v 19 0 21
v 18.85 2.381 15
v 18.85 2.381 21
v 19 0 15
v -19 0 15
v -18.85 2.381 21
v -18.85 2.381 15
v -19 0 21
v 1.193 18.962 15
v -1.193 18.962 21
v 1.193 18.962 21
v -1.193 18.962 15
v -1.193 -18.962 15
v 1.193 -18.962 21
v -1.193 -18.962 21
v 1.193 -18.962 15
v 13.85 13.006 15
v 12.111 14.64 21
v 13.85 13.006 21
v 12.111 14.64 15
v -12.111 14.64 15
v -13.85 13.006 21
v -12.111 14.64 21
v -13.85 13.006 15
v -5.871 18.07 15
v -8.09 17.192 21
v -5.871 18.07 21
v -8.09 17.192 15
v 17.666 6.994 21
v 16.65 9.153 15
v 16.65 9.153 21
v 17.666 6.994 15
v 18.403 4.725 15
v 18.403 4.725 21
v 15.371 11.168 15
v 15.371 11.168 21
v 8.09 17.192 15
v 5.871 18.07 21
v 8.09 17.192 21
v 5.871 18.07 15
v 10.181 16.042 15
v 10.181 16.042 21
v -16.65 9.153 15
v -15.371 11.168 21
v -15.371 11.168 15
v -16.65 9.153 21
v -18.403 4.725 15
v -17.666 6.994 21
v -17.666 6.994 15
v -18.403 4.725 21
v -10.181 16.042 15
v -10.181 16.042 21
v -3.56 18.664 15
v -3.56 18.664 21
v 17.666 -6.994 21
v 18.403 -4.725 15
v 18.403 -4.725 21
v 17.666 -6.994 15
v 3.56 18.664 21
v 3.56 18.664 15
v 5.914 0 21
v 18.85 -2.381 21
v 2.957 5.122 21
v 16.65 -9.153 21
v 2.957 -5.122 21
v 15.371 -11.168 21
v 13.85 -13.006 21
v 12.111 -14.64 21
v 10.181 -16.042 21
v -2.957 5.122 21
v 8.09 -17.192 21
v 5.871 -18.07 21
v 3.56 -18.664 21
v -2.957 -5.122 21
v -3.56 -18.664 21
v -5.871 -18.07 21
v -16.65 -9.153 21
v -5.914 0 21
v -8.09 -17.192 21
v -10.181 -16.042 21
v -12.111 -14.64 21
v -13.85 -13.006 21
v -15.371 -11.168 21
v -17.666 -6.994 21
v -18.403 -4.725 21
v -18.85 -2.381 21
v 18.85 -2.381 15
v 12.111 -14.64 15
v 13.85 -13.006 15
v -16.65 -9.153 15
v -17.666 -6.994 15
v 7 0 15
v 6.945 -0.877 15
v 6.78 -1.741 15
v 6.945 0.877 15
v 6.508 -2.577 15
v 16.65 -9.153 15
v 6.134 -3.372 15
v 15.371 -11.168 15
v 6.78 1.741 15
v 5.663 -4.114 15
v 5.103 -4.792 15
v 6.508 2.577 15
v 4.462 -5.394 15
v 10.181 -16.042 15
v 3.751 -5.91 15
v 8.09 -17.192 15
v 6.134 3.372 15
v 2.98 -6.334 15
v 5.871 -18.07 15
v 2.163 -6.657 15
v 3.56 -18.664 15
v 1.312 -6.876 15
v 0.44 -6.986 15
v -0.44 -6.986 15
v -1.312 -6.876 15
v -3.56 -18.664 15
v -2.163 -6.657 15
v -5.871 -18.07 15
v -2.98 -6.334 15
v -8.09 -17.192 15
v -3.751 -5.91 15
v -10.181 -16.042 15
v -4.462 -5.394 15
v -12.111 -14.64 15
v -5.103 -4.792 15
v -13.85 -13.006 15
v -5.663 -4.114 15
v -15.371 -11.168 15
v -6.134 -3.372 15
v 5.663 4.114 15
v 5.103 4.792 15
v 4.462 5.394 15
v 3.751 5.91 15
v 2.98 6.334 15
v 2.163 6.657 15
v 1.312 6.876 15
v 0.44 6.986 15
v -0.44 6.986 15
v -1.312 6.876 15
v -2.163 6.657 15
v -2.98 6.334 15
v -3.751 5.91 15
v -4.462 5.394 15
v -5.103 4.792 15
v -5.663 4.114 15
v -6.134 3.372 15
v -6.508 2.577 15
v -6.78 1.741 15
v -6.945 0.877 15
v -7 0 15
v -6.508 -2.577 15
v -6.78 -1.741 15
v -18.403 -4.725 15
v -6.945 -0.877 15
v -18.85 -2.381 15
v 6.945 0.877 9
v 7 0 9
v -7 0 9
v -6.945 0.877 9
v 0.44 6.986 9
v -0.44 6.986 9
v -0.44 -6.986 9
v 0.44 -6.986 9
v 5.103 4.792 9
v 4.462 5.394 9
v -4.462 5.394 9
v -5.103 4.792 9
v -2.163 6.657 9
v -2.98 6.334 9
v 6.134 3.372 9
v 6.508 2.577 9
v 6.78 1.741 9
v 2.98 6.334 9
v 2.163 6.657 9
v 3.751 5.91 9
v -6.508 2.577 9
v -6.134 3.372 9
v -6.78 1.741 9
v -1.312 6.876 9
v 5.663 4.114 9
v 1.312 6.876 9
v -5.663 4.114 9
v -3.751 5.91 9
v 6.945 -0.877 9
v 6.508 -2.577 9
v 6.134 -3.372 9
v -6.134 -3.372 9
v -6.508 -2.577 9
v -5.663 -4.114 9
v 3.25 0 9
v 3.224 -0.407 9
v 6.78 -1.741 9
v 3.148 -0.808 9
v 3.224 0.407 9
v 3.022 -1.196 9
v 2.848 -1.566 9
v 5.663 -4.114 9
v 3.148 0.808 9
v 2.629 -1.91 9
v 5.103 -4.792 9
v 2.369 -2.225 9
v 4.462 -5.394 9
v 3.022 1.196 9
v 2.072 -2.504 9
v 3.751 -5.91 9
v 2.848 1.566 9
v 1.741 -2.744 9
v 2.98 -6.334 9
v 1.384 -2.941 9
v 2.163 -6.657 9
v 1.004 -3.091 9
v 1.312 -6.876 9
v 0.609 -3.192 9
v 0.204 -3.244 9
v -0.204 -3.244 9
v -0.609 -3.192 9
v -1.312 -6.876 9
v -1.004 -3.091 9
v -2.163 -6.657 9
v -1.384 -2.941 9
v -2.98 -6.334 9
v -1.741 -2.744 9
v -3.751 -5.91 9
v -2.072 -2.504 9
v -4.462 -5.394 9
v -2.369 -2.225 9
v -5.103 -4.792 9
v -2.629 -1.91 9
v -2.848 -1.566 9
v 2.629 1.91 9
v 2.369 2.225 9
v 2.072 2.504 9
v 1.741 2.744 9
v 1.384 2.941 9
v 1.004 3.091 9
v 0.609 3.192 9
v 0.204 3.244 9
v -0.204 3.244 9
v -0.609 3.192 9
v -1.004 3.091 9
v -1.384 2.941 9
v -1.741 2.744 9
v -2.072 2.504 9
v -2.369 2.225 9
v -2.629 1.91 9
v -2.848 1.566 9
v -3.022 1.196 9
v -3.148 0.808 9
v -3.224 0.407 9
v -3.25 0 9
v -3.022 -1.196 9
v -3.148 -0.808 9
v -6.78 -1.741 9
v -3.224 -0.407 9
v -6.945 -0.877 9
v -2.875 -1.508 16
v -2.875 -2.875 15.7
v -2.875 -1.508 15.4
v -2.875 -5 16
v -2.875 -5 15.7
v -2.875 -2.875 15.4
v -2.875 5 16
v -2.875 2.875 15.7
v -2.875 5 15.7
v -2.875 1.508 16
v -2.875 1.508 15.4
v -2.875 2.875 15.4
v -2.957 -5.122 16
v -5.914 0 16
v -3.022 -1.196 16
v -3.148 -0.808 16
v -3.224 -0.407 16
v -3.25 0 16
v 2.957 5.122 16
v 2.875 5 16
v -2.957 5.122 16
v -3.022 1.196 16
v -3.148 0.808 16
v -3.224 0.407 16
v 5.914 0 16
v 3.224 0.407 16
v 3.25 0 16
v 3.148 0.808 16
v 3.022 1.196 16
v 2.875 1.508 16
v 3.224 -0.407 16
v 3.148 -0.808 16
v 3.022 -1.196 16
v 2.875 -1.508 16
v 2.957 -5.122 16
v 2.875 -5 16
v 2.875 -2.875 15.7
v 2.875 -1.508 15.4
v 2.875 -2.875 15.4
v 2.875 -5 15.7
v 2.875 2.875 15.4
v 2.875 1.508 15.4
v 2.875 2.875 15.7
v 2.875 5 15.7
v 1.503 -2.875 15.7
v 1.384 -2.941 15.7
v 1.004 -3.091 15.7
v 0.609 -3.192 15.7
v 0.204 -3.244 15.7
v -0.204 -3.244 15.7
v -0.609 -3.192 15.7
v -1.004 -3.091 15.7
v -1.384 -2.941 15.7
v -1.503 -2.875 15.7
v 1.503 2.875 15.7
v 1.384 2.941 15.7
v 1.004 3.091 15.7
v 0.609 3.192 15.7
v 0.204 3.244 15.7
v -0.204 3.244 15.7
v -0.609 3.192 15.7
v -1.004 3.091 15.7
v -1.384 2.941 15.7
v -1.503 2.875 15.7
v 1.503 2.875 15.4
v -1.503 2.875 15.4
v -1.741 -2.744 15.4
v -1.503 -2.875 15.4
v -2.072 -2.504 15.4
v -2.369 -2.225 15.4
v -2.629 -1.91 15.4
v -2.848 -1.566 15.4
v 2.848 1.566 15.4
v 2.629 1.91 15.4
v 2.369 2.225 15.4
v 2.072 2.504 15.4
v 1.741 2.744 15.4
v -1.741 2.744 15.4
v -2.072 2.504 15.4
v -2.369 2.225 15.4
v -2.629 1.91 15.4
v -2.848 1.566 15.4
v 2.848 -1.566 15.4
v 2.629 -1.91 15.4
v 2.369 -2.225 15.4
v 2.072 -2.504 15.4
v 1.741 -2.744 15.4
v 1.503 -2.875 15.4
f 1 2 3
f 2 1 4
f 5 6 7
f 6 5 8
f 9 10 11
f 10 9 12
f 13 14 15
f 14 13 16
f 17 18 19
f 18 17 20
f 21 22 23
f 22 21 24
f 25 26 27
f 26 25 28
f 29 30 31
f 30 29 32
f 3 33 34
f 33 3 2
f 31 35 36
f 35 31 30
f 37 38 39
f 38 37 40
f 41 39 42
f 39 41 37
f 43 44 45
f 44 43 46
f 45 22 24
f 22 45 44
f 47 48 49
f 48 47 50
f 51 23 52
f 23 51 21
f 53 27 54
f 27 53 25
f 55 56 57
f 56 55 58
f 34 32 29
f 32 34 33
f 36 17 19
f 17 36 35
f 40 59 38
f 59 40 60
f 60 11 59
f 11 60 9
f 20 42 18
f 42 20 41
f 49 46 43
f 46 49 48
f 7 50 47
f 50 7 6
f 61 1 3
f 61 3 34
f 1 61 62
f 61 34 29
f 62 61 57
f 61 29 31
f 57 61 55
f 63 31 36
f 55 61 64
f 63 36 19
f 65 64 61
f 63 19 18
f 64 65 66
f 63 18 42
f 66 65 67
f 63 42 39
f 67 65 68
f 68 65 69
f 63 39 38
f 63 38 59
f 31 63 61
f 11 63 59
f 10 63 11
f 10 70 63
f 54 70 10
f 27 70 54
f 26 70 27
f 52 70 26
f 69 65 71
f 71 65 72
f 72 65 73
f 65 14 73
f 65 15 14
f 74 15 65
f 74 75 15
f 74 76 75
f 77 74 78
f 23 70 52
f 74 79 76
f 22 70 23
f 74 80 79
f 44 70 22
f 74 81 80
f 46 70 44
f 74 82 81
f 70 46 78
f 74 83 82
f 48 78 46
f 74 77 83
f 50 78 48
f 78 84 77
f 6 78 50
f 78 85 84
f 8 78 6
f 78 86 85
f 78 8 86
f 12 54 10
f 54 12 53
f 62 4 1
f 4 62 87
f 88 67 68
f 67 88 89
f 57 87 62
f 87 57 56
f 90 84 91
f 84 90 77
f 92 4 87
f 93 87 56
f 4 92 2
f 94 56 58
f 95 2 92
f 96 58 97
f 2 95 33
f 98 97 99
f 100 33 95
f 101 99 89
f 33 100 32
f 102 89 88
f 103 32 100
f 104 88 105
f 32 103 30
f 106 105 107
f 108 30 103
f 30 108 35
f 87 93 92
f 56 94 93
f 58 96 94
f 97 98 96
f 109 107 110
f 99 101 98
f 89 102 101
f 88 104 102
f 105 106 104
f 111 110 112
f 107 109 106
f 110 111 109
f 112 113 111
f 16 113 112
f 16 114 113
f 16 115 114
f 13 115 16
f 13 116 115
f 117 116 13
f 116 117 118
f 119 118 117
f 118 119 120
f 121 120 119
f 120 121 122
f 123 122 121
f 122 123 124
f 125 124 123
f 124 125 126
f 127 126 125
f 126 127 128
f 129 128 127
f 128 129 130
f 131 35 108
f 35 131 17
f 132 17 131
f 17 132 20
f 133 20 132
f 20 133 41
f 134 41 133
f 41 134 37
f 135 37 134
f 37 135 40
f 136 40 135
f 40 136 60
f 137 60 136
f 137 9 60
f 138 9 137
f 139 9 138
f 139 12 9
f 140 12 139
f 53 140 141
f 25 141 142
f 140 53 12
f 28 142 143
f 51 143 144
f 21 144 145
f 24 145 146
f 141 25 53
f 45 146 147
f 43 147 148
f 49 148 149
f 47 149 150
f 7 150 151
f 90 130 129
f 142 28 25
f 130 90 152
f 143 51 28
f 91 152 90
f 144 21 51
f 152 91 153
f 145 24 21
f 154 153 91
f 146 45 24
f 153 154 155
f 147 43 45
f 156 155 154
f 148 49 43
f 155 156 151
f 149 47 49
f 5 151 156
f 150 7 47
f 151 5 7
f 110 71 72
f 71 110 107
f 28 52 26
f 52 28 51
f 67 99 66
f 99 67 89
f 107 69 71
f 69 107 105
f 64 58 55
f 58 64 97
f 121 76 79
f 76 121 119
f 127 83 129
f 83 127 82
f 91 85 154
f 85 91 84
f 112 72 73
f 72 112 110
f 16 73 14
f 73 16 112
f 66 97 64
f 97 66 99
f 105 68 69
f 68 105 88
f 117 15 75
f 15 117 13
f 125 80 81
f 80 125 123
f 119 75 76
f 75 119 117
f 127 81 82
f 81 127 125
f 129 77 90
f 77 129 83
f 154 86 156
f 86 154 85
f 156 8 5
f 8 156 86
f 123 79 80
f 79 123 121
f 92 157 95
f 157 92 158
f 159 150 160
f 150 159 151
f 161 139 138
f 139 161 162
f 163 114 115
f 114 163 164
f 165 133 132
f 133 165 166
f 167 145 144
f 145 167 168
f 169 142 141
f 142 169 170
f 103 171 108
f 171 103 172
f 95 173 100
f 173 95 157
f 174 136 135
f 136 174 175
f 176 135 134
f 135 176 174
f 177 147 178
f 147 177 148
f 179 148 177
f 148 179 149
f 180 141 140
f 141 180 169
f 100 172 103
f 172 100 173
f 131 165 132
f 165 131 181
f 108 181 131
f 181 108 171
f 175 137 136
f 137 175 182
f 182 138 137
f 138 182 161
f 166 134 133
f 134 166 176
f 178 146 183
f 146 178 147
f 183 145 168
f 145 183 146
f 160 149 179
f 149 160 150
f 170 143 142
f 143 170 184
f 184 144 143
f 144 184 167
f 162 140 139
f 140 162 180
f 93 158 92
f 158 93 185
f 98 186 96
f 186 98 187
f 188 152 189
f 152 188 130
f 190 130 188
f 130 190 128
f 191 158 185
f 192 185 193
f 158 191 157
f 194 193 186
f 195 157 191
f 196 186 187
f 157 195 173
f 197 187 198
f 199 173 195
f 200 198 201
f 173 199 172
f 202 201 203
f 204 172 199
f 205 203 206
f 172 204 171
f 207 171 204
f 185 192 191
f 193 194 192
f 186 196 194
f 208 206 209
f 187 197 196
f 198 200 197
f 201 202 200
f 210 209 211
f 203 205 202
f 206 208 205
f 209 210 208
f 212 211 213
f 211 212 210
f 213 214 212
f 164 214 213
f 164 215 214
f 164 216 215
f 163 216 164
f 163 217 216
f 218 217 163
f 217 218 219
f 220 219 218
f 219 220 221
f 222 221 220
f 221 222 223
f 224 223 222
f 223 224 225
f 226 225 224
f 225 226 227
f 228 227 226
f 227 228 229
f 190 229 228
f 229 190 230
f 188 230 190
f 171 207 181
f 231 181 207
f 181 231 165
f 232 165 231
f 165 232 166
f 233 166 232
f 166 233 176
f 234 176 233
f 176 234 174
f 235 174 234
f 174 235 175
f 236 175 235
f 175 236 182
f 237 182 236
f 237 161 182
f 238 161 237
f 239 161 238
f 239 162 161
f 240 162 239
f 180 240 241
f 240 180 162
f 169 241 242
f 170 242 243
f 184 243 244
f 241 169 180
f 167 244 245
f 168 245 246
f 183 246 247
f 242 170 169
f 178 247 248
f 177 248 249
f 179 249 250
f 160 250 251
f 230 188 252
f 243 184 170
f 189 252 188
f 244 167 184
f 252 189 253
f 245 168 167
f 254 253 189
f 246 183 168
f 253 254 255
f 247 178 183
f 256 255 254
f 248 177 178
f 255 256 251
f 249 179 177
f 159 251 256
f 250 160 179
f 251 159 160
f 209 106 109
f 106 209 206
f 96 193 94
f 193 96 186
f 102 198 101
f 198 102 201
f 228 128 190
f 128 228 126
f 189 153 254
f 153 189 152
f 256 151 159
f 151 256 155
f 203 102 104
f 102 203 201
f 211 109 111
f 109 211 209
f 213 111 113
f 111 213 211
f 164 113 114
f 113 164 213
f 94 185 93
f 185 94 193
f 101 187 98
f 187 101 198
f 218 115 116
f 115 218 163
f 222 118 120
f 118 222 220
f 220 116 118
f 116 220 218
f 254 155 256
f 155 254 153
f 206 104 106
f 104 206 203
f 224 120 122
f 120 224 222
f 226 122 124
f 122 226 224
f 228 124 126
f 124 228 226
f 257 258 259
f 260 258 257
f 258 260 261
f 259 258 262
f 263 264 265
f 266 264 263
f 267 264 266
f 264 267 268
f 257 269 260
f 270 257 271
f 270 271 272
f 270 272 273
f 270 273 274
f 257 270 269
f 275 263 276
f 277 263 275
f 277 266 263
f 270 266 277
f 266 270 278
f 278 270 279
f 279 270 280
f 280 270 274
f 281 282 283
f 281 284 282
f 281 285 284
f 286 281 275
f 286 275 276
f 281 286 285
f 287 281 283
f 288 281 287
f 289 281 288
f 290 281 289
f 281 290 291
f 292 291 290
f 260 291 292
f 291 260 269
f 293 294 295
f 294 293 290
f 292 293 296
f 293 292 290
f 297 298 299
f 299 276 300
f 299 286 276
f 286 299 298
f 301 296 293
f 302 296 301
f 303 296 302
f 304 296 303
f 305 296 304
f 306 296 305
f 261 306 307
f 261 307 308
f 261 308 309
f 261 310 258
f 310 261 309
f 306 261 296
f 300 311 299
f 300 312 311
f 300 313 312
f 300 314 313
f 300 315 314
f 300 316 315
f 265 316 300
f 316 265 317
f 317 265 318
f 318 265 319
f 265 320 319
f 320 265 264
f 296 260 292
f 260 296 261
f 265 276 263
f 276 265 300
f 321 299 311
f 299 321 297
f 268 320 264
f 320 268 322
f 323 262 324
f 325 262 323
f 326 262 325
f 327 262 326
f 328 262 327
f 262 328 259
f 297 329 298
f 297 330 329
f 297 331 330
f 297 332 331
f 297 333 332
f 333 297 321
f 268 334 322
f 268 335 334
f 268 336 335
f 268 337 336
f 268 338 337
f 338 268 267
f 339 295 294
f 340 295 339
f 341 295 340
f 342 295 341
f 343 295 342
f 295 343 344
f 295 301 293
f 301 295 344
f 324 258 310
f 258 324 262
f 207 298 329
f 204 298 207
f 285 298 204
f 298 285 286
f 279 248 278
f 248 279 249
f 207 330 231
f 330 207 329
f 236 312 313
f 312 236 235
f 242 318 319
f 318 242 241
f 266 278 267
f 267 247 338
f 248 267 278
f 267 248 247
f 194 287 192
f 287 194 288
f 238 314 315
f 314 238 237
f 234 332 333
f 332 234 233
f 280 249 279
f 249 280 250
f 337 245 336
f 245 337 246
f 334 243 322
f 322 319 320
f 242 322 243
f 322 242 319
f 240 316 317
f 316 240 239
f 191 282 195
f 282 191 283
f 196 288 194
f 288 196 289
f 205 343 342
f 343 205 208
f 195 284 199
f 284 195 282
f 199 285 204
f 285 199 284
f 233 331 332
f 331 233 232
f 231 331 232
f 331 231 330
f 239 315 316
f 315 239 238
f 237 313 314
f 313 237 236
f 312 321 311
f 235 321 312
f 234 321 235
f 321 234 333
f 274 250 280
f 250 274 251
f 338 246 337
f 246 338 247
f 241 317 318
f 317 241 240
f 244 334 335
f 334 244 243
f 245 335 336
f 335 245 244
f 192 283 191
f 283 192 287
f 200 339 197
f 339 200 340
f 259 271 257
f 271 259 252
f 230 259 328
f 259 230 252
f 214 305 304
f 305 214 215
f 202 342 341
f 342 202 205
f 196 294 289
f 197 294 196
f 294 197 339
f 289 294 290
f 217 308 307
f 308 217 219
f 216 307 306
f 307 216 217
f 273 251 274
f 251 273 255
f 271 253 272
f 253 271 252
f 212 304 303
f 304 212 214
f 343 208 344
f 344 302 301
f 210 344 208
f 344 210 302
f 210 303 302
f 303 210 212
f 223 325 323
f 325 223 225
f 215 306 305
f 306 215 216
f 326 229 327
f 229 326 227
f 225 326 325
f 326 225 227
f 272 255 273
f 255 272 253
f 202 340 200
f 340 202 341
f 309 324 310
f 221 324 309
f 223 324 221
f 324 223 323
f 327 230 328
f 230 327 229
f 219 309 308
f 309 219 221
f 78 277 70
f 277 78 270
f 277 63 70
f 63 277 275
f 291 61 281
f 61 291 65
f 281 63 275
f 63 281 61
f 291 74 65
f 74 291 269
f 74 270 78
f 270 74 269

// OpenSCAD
$fn = 50;


difference() {
	union() {
		translate(v = [0, 0, 15.0000000000]) {
			cylinder(h = 6, r = 19.0000000000);
		}
		translate(v = [0, 0, 9.0000000000]) {
			cylinder(h = 12, r = 7.0000000000);
		}
	}
	union() {
		translate(v = [0, 0, 21]) {
			rotate(a = [0, 0, 0]) {
				difference() {
					union() {
						#translate(v = [-2.8750000000, -5.0000000000, -5.3000000000]) {
							cube(size = [5.7500000000, 10, 0.3000000000]);
						}
						#translate(v = [-2.8750000000, -2.8750000000, -5.6000000000]) {
							cube(size = [5.7500000000, 5.7500000000, 0.3000000000]);
						}
						#translate(v = [-2.8750000000, -5.0000000000, 0]) {
							cube(size = [5.7500000000, 10, 0.3000000000]);
						}
						#translate(v = [-2.8750000000, -2.8750000000, 0.3000000000]) {
							cube(size = [5.7500000000, 5.7500000000, 0.3000000000]);
						}
						#translate(v = [0, 0, -100.0000000000]) {
							cylinder(h = 200, r = 3.2500000000);
						}
						translate(v = [0, 0, -5]) {
							#linear_extrude(height = 5) {
								polygon(points = [[5.9142500000, 0.0000000000], [2.9571250000, 5.1218907443], [-2.9571250000, 5.1218907443], [-5.9142500000, 0.0000000000], [-2.9571250000, -5.1218907443], [2.9571250000, -5.1218907443]]);
							}
						}
						#translate(v = [-2.8750000000, -5.0000000000, -5.3000000000]) {
							cube(size = [5.7500000000, 10, 0.3000000000]);
						}
						#translate(v = [-2.8750000000, -2.8750000000, -5.6000000000]) {
							cube(size = [5.7500000000, 5.7500000000, 0.3000000000]);
						}
						#translate(v = [-2.8750000000, -5.0000000000, 0]) {
							cube(size = [5.7500000000, 10, 0.3000000000]);
						}
						#translate(v = [-2.8750000000, -2.8750000000, 0.3000000000]) {
							cube(size = [5.7500000000, 5.7500000000, 0.3000000000]);
						}
						#translate(v = [0, 0, -100.0000000000]) {
							cylinder(h = 200, r = 3.2500000000);
						}
						#translate(v = [-2.8750000000, -5.0000000000, -5.3000000000]) {
							cube(size = [5.7500000000, 10, 0.3000000000]);
						}
						#translate(v = [-2.8750000000, -2.8750000000, -5.6000000000]) {
							cube(size = [5.7500000000, 5.7500000000, 0.3000000000]);
						}
						#translate(v = [-2.8750000000, -5.0000000000, 0]) {
							cube(size = [5.7500000000, 10, 0.3000000000]);
						}
						#translate(v = [-2.8750000000, -2.8750000000, 0.3000000000]) {
							cube(size = [5.7500000000, 5.7500000000, 0.3000000000]);
						}
						#translate(v = [0, 0, -100.0000000000]) {
							cylinder(h = 200, r = 3.2500000000);
						}
					}
					union();
				}
			}
		}
		#translate(v = [0, 0, -100.0000000000]) {
			cylinder(h = 200, r = 3.2500000000);
		}
	}
}
